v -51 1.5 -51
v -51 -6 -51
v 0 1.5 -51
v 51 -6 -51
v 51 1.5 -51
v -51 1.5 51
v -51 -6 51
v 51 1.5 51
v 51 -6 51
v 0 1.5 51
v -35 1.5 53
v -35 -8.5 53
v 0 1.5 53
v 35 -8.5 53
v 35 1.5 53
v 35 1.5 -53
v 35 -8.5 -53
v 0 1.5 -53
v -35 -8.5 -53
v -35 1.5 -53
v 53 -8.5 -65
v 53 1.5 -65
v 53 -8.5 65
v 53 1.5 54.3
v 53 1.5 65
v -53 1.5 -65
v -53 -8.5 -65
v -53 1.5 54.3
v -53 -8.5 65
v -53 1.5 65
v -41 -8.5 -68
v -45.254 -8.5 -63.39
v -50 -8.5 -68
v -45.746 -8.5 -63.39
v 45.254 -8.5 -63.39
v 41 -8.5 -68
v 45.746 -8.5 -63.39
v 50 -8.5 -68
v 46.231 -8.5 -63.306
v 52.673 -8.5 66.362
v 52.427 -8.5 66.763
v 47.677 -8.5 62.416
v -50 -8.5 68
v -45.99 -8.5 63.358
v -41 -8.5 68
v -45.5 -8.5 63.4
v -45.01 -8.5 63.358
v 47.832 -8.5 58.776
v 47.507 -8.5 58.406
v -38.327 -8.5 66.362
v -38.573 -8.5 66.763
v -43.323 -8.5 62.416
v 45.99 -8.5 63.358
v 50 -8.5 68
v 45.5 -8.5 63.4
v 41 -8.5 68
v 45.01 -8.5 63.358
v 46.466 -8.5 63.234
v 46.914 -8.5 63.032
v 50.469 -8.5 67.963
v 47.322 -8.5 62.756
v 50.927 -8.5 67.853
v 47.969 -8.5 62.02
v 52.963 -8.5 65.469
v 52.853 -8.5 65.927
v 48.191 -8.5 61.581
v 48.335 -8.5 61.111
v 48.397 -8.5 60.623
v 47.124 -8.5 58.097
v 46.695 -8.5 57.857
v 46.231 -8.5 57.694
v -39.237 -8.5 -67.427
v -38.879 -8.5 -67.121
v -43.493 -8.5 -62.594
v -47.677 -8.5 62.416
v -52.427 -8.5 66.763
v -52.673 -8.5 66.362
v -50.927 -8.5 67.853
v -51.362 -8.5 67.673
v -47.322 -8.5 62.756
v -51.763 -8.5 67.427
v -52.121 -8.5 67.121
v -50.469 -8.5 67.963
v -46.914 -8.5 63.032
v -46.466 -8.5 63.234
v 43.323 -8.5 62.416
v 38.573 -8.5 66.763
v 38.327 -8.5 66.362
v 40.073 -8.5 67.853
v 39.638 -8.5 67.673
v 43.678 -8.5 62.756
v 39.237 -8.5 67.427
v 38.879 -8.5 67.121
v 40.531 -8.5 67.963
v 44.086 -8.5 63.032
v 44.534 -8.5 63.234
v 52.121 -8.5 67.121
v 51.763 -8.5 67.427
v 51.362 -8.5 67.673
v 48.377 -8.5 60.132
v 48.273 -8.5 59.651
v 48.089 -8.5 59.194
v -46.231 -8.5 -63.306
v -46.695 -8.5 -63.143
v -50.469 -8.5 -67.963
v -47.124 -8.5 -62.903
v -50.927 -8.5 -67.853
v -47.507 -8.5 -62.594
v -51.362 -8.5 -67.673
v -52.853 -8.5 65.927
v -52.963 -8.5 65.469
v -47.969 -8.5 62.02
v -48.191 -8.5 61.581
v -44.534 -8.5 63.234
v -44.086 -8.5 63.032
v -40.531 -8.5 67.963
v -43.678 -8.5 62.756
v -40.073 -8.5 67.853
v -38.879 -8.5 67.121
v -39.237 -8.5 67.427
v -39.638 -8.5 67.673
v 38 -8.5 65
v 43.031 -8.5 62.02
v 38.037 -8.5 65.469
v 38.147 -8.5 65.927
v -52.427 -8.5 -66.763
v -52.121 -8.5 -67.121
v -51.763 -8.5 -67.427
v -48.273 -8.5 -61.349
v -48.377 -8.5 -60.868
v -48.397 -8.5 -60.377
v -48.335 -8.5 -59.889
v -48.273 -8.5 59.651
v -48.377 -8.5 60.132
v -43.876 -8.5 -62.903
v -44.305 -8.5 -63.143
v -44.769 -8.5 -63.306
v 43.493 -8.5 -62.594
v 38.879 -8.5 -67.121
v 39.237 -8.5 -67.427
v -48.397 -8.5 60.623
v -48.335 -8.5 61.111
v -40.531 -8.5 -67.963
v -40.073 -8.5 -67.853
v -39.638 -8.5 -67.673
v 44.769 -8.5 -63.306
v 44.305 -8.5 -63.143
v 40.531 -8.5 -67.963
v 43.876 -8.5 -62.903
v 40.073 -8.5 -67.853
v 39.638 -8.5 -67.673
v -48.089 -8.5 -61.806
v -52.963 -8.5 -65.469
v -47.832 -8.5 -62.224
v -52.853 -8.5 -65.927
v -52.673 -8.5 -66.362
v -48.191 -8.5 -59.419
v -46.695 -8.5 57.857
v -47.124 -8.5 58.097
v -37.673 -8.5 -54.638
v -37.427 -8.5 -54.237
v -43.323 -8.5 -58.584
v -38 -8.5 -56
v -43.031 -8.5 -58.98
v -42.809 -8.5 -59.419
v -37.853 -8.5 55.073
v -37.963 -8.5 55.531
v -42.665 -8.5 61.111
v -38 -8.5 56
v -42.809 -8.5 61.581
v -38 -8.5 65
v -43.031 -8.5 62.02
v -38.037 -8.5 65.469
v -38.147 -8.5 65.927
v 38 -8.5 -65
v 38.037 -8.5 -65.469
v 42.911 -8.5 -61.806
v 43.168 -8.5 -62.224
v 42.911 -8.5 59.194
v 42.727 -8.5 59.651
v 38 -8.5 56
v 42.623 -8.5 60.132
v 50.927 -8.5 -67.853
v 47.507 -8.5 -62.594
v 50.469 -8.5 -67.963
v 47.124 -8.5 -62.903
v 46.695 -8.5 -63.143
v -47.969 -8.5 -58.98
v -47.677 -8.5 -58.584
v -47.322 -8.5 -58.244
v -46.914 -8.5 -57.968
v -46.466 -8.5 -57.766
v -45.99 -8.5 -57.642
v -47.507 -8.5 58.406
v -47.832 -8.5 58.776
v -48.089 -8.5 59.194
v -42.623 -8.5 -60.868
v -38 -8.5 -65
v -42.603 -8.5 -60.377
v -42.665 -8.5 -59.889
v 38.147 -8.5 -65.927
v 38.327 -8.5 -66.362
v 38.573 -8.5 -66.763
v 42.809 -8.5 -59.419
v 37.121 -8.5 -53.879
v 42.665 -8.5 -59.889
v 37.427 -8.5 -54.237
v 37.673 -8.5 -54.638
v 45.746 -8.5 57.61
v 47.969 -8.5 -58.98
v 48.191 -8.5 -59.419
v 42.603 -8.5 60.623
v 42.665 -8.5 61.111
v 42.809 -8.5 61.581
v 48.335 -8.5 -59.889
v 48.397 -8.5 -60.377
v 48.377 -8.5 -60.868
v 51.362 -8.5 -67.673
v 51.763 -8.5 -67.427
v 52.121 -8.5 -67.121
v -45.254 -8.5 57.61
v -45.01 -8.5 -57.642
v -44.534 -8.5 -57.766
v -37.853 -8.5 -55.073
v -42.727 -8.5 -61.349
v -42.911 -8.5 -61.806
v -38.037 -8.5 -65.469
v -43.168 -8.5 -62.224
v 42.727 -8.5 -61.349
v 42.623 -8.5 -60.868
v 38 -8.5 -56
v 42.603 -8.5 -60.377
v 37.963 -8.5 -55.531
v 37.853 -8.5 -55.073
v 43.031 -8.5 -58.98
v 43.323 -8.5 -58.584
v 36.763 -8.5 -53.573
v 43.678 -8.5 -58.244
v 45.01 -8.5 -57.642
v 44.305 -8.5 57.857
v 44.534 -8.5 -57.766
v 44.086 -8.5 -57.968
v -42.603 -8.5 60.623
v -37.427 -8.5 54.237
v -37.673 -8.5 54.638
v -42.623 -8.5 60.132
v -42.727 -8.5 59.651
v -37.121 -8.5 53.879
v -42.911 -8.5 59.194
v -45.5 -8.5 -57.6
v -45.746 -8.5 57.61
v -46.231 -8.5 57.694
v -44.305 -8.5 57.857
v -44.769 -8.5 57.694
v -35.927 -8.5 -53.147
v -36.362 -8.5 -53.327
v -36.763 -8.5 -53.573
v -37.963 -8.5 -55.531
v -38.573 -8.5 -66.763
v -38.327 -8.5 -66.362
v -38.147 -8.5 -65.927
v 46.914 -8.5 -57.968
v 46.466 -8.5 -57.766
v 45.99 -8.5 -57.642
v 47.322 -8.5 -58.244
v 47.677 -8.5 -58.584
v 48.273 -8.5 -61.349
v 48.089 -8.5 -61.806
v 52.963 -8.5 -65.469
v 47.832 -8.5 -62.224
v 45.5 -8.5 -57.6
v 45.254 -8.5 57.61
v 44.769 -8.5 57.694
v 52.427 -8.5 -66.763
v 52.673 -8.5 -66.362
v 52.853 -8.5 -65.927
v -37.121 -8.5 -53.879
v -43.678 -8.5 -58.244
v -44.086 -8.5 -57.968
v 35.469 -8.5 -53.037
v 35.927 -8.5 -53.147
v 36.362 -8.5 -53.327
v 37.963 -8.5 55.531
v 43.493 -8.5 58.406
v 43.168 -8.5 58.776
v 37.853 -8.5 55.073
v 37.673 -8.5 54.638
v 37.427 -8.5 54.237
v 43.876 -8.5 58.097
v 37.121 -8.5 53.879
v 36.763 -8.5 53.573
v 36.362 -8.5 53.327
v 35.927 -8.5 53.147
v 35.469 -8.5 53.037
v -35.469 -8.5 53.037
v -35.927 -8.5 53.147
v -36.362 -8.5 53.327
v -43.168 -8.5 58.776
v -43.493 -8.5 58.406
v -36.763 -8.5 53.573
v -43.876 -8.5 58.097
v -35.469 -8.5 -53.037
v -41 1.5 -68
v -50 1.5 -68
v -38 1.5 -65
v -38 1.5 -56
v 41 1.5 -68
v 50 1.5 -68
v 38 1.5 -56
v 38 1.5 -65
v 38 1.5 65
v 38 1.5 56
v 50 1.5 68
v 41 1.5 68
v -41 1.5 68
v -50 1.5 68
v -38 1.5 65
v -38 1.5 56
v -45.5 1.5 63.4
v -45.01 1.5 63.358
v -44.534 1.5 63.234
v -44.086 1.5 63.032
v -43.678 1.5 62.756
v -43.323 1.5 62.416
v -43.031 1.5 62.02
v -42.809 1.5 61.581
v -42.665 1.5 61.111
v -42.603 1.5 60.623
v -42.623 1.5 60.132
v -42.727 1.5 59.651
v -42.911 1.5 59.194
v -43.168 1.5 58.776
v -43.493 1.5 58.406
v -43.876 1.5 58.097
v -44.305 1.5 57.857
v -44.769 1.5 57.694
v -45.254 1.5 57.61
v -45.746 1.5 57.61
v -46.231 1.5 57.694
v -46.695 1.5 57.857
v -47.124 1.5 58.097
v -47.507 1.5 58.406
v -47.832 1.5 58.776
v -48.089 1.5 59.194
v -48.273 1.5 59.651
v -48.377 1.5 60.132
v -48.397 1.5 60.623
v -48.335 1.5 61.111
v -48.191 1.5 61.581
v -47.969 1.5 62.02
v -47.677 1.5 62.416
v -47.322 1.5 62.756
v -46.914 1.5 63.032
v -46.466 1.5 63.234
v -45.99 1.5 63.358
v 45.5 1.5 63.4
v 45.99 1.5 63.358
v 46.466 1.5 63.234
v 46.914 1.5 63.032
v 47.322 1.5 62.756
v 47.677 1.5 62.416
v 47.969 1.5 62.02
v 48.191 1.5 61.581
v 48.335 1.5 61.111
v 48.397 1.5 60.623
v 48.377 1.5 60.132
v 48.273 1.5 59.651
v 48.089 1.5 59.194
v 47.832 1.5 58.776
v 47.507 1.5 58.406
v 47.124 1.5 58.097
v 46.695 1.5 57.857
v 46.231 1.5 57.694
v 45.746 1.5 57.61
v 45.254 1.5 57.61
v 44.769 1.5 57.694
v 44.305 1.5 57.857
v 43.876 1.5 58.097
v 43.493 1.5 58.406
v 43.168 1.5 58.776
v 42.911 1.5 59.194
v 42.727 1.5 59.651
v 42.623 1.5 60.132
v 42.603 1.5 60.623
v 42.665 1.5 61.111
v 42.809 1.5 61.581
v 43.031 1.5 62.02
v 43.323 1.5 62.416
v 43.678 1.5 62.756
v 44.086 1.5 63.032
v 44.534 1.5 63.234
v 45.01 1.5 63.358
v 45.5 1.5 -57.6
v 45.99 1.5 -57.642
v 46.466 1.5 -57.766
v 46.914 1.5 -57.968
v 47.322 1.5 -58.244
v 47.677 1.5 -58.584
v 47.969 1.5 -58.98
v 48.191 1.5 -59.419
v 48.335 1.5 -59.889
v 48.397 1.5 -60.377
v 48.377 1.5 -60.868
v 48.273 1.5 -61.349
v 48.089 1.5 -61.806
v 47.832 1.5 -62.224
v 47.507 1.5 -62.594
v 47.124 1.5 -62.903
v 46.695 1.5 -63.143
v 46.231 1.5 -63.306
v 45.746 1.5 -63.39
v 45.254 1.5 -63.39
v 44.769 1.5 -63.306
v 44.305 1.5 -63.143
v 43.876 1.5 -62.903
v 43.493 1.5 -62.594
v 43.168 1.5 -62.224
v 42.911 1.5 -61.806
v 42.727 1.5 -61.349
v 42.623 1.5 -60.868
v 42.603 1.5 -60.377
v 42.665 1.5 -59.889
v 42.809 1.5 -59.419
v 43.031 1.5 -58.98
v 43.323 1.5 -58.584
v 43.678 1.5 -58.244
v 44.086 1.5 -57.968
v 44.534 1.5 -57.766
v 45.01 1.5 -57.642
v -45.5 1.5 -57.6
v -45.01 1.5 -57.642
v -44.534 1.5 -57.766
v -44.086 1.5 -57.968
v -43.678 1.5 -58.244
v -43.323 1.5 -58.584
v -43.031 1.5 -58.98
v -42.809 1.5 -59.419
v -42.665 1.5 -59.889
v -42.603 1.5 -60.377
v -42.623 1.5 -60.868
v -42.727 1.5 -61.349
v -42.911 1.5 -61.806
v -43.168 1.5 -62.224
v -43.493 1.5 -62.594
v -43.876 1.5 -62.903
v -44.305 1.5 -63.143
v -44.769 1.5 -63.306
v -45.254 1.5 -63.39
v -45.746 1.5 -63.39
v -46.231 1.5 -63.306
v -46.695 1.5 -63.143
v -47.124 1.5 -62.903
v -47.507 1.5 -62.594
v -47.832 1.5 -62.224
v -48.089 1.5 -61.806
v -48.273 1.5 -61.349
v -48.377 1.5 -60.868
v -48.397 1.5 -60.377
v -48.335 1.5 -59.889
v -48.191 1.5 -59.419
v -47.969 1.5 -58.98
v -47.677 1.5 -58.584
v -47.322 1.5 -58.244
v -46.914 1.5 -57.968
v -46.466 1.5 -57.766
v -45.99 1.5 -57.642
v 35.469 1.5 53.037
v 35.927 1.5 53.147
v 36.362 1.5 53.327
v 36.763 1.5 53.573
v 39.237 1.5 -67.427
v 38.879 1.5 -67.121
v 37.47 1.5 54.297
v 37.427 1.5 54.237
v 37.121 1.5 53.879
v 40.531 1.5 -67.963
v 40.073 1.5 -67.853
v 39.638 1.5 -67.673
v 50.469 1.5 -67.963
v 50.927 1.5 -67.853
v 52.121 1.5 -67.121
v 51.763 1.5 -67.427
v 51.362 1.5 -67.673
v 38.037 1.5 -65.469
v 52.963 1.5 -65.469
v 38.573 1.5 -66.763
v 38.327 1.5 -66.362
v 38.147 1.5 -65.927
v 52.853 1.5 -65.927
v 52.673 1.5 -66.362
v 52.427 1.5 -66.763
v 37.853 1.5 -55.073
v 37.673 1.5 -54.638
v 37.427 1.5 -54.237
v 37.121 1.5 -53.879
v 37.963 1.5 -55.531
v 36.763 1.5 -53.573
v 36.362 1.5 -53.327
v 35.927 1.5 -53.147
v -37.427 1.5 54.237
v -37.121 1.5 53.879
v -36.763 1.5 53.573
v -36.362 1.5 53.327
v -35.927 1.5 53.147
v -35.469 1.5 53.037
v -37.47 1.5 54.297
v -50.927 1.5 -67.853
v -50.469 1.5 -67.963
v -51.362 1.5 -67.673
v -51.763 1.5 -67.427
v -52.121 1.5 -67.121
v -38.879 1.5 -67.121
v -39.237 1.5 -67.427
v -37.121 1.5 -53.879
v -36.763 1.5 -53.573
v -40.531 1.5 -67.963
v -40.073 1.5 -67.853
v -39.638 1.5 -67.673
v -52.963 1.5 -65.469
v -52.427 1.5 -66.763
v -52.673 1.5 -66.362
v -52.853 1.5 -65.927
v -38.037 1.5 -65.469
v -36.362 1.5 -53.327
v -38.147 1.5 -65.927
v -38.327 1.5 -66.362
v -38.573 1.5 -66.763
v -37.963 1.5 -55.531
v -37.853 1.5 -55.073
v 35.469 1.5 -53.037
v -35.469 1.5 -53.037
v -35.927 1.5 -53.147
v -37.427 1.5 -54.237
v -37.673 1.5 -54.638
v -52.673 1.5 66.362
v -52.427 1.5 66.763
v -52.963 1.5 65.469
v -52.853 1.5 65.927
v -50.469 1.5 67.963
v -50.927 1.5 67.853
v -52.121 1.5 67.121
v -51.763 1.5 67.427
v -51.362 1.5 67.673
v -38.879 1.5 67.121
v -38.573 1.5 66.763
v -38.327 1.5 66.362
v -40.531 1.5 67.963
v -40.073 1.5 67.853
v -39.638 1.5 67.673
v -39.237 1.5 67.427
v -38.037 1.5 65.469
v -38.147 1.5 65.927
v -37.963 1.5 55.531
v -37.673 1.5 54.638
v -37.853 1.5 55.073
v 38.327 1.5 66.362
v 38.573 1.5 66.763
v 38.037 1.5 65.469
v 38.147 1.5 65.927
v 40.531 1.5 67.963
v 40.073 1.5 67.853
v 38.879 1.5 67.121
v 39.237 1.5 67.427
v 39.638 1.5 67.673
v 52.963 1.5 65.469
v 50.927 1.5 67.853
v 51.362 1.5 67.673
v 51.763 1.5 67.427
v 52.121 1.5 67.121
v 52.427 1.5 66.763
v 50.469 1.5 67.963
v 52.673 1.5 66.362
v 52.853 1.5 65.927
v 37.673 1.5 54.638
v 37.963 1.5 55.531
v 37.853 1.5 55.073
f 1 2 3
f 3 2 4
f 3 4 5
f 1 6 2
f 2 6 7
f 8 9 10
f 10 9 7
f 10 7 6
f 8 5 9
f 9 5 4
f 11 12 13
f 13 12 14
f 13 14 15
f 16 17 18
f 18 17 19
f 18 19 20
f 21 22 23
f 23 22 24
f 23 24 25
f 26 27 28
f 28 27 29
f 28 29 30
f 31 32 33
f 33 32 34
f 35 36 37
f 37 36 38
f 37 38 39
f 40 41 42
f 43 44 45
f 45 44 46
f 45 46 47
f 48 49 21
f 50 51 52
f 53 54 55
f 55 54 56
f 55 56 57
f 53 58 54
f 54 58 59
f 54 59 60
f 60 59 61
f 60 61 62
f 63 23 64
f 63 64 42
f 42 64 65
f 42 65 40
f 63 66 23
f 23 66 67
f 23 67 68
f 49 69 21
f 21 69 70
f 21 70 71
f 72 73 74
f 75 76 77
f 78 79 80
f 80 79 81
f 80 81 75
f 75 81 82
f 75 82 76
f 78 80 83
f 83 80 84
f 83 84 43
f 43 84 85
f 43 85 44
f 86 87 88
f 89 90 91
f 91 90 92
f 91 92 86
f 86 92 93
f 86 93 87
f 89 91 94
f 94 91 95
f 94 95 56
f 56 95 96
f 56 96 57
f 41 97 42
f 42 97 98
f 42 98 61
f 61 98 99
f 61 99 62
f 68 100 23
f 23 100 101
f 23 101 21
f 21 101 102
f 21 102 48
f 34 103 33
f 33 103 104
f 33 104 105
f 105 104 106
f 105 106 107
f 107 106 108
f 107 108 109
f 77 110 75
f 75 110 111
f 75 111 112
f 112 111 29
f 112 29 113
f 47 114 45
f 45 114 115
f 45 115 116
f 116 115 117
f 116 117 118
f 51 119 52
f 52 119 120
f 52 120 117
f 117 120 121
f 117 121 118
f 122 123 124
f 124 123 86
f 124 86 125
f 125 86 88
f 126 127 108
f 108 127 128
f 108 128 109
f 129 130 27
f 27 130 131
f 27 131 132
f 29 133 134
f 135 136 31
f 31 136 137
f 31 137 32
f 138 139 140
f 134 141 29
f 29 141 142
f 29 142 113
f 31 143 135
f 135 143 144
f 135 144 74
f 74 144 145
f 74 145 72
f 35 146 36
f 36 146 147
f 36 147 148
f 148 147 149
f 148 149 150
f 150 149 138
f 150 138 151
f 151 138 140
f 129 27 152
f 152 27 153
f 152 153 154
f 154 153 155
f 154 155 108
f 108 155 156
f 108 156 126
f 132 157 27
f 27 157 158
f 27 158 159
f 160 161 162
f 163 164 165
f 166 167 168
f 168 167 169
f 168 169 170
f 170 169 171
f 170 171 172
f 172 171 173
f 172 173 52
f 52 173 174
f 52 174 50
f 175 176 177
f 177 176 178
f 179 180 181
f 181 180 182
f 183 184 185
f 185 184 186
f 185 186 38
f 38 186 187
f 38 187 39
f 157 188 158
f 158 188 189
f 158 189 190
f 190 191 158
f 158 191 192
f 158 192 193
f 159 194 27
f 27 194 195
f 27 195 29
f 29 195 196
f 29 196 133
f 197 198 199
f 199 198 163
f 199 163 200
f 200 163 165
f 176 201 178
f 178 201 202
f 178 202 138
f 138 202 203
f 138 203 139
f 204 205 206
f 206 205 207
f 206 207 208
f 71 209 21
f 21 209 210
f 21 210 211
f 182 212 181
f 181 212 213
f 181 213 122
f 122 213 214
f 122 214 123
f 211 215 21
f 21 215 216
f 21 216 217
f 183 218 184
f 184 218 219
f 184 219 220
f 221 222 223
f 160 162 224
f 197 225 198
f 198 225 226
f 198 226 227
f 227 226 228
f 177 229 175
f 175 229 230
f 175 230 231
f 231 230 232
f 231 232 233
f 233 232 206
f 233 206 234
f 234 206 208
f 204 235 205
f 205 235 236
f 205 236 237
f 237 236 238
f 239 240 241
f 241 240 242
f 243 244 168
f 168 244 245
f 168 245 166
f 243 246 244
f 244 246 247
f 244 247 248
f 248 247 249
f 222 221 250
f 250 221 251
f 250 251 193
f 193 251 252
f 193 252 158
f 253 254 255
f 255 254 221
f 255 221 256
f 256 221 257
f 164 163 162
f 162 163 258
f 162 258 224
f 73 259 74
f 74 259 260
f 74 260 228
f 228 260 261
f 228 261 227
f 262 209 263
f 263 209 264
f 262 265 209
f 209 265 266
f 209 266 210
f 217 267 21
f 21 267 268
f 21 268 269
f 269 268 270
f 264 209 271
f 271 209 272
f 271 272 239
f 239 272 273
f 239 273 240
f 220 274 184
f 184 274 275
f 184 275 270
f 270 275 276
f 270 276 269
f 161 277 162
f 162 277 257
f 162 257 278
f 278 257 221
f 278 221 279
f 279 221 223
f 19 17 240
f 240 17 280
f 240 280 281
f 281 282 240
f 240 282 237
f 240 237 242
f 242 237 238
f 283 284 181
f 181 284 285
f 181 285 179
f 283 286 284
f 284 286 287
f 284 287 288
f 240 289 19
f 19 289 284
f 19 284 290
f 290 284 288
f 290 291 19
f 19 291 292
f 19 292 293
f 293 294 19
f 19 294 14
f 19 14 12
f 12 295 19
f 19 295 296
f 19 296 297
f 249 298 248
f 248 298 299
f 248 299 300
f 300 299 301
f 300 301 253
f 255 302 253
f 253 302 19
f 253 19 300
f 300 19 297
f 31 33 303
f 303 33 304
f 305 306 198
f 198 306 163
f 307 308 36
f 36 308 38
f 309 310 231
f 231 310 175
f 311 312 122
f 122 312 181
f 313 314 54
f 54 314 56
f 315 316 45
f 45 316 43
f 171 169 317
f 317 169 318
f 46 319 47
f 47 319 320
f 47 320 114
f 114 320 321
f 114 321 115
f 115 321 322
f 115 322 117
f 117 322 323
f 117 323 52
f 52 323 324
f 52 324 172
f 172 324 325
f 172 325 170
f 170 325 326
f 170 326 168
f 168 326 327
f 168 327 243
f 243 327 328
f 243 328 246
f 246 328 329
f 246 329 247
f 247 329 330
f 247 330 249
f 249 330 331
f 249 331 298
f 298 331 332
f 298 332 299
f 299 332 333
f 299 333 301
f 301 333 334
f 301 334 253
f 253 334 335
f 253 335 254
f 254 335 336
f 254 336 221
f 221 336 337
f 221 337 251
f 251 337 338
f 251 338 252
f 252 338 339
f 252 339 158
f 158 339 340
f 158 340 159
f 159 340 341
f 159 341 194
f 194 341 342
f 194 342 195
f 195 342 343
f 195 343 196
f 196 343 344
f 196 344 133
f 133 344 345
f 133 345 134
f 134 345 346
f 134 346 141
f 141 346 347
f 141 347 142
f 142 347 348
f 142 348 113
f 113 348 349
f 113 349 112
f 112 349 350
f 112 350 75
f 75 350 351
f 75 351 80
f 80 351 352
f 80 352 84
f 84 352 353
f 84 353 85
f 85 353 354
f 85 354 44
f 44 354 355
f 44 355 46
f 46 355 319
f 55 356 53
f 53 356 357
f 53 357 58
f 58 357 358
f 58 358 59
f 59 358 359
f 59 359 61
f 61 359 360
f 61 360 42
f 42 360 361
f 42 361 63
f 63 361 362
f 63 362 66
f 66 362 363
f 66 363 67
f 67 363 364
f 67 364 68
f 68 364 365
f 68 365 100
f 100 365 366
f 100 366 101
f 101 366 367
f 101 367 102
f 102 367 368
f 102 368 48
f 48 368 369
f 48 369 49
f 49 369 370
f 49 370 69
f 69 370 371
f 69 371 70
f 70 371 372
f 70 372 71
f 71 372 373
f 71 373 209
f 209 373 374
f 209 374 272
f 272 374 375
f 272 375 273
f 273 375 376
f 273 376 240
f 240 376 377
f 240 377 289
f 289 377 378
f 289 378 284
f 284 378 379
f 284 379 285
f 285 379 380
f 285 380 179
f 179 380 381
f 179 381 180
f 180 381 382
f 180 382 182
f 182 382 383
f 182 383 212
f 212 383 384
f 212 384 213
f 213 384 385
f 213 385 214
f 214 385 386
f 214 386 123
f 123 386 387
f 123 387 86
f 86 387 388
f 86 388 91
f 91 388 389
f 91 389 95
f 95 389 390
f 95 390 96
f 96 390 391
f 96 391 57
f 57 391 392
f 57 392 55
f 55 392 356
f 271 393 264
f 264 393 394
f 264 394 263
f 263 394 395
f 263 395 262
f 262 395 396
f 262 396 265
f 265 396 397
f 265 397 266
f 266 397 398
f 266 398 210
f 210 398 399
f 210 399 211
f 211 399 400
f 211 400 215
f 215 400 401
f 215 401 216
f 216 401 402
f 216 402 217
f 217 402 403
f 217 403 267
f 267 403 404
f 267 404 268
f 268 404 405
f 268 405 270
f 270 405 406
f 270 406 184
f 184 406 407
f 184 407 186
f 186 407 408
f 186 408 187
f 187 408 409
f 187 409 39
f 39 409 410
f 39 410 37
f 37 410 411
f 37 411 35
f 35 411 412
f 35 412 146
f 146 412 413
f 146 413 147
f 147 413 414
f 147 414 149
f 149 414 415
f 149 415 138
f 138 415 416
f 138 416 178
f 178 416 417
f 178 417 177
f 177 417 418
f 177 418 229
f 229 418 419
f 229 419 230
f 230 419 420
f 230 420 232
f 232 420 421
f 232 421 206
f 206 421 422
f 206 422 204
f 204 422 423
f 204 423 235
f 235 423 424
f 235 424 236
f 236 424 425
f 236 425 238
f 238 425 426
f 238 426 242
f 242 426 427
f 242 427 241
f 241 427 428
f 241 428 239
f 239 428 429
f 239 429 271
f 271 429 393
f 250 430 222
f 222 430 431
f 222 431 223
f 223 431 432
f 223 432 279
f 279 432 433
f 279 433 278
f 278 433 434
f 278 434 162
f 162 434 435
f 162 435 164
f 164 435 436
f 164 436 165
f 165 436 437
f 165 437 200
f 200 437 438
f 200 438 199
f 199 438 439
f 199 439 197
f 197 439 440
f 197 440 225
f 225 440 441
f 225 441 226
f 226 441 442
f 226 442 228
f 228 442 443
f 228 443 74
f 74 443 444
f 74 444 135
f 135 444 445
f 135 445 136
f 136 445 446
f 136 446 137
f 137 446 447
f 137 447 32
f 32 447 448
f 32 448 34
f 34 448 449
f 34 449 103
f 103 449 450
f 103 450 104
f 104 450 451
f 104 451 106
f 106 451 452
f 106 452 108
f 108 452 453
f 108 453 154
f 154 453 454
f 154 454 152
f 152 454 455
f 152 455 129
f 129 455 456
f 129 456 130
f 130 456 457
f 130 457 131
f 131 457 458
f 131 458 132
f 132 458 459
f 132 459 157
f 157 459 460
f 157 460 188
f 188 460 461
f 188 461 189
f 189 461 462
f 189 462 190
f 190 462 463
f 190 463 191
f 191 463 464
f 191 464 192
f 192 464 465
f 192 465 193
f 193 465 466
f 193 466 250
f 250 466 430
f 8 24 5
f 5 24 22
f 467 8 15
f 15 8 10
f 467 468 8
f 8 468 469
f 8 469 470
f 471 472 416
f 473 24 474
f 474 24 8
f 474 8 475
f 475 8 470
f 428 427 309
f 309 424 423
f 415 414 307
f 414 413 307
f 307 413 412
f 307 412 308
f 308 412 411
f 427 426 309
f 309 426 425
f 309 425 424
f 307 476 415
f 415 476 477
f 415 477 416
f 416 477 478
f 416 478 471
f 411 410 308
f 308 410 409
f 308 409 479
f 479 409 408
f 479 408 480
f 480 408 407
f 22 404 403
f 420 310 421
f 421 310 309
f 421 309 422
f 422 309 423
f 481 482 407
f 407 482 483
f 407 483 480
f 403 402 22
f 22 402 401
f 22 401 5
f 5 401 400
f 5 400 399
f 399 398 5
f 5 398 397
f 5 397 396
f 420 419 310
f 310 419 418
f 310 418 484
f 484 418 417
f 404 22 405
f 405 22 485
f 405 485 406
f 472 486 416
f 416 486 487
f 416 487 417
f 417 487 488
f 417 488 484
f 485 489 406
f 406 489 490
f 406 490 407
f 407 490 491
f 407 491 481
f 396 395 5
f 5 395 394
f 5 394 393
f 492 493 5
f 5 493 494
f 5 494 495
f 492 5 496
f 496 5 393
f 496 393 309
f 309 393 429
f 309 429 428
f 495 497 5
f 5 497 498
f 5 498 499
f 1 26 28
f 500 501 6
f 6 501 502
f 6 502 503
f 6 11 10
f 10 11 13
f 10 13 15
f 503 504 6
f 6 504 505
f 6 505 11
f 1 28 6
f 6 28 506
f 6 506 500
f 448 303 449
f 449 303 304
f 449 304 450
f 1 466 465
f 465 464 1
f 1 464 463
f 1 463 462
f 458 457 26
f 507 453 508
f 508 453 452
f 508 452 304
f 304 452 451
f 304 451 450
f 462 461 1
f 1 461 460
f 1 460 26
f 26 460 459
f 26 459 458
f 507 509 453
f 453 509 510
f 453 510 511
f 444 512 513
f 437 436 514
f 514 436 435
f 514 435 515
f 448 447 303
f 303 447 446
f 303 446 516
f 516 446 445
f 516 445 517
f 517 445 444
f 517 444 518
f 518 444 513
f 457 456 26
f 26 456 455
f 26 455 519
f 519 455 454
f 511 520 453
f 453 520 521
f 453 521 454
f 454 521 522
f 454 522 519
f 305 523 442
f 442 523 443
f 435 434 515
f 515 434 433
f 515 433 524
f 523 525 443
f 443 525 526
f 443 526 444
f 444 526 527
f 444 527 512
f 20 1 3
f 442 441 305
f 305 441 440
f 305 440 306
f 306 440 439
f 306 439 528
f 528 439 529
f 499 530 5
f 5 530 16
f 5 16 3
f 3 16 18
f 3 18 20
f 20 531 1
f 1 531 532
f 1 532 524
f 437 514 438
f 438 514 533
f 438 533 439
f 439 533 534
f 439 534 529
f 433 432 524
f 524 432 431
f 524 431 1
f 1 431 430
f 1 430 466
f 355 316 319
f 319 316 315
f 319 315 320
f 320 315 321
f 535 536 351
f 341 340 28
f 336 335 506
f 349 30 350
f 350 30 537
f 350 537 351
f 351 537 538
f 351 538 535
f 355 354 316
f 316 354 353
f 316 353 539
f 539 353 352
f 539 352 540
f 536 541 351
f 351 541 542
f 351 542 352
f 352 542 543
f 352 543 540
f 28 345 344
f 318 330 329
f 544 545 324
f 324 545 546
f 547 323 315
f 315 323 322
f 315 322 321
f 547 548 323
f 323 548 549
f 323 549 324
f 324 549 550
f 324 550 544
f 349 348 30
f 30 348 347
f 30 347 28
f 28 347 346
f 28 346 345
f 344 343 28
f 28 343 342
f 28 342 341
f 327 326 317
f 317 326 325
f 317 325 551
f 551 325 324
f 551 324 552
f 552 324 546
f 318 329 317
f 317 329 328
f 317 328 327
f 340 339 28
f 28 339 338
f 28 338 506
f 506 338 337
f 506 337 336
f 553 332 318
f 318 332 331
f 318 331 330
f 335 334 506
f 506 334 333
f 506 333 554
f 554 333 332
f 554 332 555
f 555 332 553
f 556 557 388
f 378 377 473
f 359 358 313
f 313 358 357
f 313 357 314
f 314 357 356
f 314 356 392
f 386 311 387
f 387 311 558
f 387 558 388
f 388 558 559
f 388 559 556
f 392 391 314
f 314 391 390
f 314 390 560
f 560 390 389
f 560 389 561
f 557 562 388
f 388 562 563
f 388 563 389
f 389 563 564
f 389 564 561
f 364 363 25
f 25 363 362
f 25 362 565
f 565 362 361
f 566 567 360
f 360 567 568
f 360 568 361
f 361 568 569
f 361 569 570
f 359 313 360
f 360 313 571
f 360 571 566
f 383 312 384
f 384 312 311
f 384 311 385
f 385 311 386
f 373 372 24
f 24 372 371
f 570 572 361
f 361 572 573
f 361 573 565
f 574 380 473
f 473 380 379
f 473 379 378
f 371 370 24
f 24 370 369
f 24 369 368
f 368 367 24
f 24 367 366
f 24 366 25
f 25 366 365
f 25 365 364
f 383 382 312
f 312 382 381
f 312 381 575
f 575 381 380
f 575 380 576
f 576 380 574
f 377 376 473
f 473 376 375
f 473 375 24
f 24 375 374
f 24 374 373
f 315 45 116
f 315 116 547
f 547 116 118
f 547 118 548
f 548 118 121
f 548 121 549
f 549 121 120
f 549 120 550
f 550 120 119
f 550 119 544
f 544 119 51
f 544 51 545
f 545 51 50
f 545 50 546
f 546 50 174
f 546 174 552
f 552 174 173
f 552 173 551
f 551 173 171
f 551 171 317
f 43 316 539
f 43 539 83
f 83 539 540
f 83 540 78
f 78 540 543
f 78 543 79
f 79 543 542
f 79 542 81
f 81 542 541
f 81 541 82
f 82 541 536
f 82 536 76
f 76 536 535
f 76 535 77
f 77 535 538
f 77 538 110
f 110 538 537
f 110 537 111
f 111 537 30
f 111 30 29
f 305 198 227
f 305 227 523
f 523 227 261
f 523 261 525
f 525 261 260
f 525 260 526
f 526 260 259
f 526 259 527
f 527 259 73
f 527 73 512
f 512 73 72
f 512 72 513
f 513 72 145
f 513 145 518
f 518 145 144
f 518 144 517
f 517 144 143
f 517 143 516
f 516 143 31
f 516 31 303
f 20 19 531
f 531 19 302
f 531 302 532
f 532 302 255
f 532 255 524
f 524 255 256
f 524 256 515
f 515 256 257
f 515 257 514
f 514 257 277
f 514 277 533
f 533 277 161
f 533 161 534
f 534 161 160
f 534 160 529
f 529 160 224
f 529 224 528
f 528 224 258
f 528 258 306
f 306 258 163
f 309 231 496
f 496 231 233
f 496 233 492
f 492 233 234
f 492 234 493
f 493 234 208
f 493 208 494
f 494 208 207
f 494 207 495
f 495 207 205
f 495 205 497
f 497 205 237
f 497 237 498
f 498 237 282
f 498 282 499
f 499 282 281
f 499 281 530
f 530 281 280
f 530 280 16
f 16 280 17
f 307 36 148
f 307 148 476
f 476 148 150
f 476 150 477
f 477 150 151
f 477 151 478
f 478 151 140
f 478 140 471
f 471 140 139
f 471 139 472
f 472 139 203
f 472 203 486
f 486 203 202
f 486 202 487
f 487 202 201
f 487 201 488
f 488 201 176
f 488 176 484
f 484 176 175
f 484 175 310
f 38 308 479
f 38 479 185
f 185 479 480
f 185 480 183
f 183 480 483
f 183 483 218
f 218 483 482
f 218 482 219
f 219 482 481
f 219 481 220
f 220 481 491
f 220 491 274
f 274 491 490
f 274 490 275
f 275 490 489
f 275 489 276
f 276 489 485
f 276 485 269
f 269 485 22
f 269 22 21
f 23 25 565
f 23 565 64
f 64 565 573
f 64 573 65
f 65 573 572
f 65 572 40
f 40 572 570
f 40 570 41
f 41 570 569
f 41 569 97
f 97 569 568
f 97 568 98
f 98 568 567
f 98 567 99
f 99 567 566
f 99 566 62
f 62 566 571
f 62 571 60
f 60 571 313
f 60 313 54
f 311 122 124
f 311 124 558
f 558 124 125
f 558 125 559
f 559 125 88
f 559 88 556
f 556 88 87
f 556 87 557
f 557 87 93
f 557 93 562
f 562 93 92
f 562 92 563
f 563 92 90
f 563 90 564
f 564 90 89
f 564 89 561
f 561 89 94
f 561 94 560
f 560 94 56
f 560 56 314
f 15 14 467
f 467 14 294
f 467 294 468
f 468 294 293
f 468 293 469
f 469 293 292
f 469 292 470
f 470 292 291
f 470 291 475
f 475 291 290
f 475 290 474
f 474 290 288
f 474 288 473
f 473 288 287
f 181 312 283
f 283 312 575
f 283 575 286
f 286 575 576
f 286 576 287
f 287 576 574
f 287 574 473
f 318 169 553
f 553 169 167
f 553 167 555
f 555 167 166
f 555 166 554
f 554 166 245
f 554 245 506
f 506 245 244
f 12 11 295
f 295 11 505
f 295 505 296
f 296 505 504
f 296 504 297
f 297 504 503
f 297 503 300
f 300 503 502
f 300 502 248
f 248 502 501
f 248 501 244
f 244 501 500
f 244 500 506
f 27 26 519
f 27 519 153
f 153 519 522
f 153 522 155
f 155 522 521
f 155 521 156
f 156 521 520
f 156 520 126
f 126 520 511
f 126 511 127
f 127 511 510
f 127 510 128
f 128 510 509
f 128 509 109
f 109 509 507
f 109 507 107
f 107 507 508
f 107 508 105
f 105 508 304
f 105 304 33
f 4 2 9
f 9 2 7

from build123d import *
from build123d.topology import SkipClean

# Parameters (mm, degrees)
SKETCH1_W            = 106
SKETCH1_H            = 106
BOSS_EXTRUDE1_DEPTH  = 8.5
SHELL1_T             = -2
BOSS_EXTRUDE2_START  = -2
SKETCH2_W            = 15
SKETCH2_H            = 15
BOSS_EXTRUDE2_DEPTH  = 8.5
M5_CLEARANCE_HOLE1_D = 5.8
SKETCH5_R            = 2.9
SKETCH5_W            = 102
SKETCH5_H            = 102
BOSS_EXTRUDE3_DEPTH  = 1.5
FILLET2_R            = 3
SKETCH6_W            = 102
SKETCH6_H            = 102
BOSS_EXTRUDE4_DEPTH  = 0.5


with BuildPart() as part:
    # Sketch1 → Boss-Extrude1 (new body)
    with BuildSketch(Plane(origin=(0, 0, 0), x_dir=(1, 0, 0), z_dir=(0, 1, 0))):
        Rectangle(SKETCH1_W, SKETCH1_H)
    extrude(amount=-BOSS_EXTRUDE1_DEPTH)

    # Shell1
    shell1_openings = [part.faces().sort_by_distance(p)[0] for p in [
        (0, 0, 0),
    ]]
    offset(amount=SHELL1_T, openings=shell1_openings, kind=Kind.INTERSECTION)

    # Sketch2 → Boss-Extrude2 (add)
    with BuildSketch(Plane(origin=(0, -6.5, 0), x_dir=(1, 0, 0), z_dir=(0, 1, 0)).offset(BOSS_EXTRUDE2_START)):
        with Locations((-45.5, 60.5)):
            Rectangle(SKETCH2_W, SKETCH2_H)
        with Locations((45.5, 60.5)):
            Rectangle(SKETCH2_W, SKETCH2_H)
        with Locations((45.5, -60.5)):
            Rectangle(SKETCH2_W, SKETCH2_H)
        with Locations((-45.5, -60.5)):
            Rectangle(SKETCH2_W, SKETCH2_H)
    extrude(amount=BOSS_EXTRUDE2_DEPTH)

    # M5 Clearance Hole1 (through all)
    with Locations(Plane(origin=(0, 0, 0), x_dir=(1, 0, 0), z_dir=(0, 1, 0))):
        with Locations((-45.5, -60.5), (-45.5, 60.5), (45.5, 60.5), (45.5, -60.5)):
            Hole(M5_CLEARANCE_HOLE1_D / 2)

    # Sketch5 → Boss-Extrude3 (add)
    with BuildSketch(Plane(origin=(0, 0, 0), x_dir=(1, 0, 0), z_dir=(0, 1, 0))):
        Polygon((53, -68), (53, 68), (38, 68), (38, 53), (-38, 53), (-38, 68), (-53, 68), (-53, -68), (-38, -68), (-38, -53), (38, -53), (38, -68), align=None)
        with Locations(Location((45.5, -60.5, 0), (0, 0, 270))):
            Circle(SKETCH5_R, mode=Mode.SUBTRACT)
        with Locations(Location((45.5, 60.5, 0), (0, 0, 270))):
            Circle(SKETCH5_R, mode=Mode.SUBTRACT)
        with Locations(Location((-45.5, 60.5, 0), (0, 0, 270))):
            Circle(SKETCH5_R, mode=Mode.SUBTRACT)
        with Locations(Location((-45.5, -60.5, 0), (0, 0, 270))):
            Circle(SKETCH5_R, mode=Mode.SUBTRACT)
        Rectangle(SKETCH5_W, SKETCH5_H, mode=Mode.SUBTRACT)
    extrude(amount=BOSS_EXTRUDE3_DEPTH)

    # Fillet2
    fillet2_edges = [part.edges().sort_by_distance(p)[0] for p in [
        (-53, -3.5, 68),
        (-38, -3.5, 53),
        (-38, -3.5, 68),
        (38, -3.5, 53),
        (53, -3.5, 68),
        (38, -3.5, 68),
        (53, -3.5, -68),
        (38, -3.5, -53),
        (38, -3.5, -68),
        (-53, -3.5, -68),
        (-38, -3.5, -68),
        (-38, -3.5, -53),
    ]]
    fillet(fillet2_edges, radius=FILLET2_R)

    # Sketch6 → Boss-Extrude4 (add)
    with SkipClean():  # the faces are left unmerged after this step: merging them gives an invalid solid
        with BuildSketch(Plane(origin=(0, -6.5, 0), x_dir=(1, 0, 0), z_dir=(0, 1, 0))):
            Rectangle(SKETCH6_W, SKETCH6_H)
        extrude(amount=BOSS_EXTRUDE4_DEPTH)


solid = part.part
